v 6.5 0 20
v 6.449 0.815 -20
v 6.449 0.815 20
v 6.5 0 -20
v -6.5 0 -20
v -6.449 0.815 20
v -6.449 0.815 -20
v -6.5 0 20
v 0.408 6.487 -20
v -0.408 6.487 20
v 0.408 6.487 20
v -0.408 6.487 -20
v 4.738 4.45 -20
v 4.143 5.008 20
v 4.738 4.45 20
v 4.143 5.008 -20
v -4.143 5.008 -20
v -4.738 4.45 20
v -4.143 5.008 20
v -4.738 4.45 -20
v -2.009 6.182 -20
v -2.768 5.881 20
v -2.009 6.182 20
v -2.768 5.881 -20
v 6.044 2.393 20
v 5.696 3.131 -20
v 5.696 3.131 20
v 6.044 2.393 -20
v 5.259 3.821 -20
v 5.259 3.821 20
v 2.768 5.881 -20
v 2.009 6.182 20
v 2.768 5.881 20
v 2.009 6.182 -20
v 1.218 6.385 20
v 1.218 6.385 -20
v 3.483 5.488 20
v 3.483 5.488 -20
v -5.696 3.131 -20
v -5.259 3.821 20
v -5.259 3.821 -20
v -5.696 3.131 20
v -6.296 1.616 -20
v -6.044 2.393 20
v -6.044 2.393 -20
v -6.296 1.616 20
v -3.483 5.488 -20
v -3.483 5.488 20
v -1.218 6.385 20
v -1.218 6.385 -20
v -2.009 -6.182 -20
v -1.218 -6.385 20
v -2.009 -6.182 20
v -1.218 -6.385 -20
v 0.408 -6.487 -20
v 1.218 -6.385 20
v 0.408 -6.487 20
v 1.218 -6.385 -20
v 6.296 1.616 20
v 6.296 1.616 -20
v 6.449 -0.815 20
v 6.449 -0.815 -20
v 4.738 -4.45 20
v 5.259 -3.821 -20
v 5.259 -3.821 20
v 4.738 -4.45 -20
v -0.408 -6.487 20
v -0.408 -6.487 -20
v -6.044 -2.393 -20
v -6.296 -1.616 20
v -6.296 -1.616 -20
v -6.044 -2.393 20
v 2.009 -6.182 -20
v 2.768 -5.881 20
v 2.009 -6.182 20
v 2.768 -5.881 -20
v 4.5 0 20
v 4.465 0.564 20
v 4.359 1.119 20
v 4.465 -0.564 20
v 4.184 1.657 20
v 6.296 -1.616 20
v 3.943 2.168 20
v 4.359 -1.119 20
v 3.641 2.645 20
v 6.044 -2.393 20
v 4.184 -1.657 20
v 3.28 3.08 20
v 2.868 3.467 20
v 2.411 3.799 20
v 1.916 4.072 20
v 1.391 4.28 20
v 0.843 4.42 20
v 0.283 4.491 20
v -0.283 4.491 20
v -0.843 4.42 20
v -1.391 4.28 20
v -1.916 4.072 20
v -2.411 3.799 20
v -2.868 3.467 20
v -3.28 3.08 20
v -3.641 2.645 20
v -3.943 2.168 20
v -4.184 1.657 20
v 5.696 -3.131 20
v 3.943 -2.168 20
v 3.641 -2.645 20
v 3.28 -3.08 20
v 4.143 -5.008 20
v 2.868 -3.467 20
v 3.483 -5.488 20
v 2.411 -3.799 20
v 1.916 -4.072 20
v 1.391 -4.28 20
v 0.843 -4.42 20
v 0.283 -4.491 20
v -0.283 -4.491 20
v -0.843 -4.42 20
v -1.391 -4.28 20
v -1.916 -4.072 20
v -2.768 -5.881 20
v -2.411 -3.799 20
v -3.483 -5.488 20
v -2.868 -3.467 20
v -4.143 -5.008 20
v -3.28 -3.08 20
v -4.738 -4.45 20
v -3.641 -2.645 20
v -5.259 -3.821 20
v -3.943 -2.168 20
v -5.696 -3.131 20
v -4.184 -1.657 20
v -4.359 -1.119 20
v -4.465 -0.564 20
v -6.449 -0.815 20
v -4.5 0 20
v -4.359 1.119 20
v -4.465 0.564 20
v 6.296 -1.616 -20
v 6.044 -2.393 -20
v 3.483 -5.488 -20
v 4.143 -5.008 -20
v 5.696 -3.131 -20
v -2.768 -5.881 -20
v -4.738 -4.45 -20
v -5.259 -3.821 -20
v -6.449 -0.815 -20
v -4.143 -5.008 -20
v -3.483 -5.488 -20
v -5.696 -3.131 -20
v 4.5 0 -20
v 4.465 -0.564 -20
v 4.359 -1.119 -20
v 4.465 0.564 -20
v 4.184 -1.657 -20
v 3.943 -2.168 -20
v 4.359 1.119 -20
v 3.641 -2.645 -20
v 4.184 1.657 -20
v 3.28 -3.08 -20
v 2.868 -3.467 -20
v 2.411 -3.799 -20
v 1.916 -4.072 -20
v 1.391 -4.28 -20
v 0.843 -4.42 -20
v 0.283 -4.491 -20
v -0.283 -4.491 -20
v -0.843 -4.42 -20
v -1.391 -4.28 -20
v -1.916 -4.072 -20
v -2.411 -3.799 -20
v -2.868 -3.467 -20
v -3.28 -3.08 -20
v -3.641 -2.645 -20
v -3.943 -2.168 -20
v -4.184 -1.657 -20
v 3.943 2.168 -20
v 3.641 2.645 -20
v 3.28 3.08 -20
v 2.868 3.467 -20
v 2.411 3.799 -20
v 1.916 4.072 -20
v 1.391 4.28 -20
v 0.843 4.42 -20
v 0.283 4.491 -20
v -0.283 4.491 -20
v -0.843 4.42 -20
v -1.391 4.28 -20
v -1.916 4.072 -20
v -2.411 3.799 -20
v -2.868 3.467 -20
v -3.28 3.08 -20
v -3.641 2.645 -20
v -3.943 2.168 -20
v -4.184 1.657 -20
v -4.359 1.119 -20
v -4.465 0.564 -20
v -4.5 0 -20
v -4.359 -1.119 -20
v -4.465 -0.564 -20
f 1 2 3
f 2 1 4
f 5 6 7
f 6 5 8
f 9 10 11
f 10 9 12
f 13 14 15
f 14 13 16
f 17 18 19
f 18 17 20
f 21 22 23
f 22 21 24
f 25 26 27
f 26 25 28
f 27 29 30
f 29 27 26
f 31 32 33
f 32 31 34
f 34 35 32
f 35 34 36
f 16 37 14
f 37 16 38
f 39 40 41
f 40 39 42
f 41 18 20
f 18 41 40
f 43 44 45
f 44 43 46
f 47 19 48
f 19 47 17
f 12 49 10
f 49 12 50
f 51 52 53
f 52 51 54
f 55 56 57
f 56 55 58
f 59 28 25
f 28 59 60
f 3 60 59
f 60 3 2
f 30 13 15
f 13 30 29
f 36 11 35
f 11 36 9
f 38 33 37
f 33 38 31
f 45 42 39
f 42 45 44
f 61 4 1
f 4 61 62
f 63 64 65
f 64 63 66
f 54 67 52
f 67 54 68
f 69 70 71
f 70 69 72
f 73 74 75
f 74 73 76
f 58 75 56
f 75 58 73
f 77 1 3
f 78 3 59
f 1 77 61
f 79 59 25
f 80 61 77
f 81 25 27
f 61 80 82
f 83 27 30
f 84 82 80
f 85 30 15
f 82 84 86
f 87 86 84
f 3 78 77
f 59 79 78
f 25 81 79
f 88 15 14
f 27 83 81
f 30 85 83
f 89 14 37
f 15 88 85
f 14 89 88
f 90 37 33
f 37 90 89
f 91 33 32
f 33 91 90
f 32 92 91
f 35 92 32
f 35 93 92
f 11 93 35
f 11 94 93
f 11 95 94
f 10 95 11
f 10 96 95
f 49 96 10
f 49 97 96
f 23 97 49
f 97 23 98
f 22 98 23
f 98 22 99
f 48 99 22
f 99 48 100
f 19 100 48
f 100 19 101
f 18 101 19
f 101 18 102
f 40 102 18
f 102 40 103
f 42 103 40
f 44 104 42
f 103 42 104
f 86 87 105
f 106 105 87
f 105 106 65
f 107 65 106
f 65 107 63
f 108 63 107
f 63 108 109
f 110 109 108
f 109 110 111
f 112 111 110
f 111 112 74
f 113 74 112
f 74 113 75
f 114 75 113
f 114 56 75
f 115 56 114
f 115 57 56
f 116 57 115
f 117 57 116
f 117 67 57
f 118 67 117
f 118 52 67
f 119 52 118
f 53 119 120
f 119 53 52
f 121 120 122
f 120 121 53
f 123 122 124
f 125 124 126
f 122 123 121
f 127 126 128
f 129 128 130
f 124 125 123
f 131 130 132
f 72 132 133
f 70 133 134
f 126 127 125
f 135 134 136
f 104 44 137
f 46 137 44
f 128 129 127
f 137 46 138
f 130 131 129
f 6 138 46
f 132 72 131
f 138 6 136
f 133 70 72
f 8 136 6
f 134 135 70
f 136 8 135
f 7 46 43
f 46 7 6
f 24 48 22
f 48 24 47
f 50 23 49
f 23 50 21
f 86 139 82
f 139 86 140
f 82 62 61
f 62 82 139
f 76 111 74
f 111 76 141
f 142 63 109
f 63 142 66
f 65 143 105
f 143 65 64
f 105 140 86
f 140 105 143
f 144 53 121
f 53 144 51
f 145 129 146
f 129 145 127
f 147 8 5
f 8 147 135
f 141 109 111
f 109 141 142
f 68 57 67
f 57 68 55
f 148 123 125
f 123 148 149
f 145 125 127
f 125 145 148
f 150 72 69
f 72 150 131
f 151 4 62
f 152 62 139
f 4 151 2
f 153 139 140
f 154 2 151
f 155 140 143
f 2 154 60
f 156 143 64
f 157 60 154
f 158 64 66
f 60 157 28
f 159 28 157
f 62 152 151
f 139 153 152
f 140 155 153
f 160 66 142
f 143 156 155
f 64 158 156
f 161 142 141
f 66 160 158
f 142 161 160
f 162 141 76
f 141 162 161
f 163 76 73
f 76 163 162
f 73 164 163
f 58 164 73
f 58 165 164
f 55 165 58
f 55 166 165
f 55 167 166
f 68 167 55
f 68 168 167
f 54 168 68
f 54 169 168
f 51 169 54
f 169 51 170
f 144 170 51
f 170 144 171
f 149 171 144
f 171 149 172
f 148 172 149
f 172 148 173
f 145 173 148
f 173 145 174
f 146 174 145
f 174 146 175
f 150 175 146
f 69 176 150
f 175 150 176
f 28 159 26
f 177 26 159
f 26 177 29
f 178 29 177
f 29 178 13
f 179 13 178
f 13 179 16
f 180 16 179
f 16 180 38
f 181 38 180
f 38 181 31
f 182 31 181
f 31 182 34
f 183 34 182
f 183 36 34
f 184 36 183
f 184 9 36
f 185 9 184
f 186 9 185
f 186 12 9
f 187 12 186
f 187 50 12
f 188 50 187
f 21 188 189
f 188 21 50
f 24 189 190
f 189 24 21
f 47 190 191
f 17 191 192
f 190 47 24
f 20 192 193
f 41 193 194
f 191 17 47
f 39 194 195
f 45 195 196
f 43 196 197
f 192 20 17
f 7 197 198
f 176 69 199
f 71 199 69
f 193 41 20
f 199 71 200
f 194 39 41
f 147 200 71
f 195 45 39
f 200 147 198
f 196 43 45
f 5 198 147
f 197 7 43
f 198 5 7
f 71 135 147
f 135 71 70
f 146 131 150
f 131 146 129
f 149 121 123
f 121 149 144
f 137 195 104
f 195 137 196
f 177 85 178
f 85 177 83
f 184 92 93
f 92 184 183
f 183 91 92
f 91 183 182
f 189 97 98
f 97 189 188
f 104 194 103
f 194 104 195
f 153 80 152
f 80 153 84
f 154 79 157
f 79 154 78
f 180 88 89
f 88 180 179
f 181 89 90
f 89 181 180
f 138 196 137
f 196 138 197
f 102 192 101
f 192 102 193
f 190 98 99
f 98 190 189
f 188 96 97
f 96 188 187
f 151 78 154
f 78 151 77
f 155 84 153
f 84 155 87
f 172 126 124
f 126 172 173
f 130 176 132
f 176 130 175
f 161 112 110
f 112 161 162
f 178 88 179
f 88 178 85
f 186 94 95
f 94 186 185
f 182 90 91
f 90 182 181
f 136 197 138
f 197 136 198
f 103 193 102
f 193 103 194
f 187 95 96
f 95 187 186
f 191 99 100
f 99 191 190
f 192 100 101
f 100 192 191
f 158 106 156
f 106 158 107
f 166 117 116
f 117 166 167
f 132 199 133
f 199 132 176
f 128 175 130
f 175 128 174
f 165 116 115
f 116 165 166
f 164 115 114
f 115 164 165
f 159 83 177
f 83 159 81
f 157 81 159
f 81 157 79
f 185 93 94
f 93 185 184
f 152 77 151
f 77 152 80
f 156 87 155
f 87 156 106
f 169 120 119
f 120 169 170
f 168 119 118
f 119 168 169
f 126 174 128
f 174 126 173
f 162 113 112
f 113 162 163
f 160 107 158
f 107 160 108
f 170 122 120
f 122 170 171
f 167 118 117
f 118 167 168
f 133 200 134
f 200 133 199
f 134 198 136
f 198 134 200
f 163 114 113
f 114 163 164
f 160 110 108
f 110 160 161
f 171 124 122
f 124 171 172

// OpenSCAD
$fn = 50;


difference() {
	union() {
		translate(v = [0, 0, -20.0000000000]) {
			cylinder(h = 40, r = 6.5000000000);
		}
	}
	union() {
		translate(v = [0, 0, -100.0000000000]) {
			cylinder(h = 200, r = 4.5000000000);
		}
	}
}
